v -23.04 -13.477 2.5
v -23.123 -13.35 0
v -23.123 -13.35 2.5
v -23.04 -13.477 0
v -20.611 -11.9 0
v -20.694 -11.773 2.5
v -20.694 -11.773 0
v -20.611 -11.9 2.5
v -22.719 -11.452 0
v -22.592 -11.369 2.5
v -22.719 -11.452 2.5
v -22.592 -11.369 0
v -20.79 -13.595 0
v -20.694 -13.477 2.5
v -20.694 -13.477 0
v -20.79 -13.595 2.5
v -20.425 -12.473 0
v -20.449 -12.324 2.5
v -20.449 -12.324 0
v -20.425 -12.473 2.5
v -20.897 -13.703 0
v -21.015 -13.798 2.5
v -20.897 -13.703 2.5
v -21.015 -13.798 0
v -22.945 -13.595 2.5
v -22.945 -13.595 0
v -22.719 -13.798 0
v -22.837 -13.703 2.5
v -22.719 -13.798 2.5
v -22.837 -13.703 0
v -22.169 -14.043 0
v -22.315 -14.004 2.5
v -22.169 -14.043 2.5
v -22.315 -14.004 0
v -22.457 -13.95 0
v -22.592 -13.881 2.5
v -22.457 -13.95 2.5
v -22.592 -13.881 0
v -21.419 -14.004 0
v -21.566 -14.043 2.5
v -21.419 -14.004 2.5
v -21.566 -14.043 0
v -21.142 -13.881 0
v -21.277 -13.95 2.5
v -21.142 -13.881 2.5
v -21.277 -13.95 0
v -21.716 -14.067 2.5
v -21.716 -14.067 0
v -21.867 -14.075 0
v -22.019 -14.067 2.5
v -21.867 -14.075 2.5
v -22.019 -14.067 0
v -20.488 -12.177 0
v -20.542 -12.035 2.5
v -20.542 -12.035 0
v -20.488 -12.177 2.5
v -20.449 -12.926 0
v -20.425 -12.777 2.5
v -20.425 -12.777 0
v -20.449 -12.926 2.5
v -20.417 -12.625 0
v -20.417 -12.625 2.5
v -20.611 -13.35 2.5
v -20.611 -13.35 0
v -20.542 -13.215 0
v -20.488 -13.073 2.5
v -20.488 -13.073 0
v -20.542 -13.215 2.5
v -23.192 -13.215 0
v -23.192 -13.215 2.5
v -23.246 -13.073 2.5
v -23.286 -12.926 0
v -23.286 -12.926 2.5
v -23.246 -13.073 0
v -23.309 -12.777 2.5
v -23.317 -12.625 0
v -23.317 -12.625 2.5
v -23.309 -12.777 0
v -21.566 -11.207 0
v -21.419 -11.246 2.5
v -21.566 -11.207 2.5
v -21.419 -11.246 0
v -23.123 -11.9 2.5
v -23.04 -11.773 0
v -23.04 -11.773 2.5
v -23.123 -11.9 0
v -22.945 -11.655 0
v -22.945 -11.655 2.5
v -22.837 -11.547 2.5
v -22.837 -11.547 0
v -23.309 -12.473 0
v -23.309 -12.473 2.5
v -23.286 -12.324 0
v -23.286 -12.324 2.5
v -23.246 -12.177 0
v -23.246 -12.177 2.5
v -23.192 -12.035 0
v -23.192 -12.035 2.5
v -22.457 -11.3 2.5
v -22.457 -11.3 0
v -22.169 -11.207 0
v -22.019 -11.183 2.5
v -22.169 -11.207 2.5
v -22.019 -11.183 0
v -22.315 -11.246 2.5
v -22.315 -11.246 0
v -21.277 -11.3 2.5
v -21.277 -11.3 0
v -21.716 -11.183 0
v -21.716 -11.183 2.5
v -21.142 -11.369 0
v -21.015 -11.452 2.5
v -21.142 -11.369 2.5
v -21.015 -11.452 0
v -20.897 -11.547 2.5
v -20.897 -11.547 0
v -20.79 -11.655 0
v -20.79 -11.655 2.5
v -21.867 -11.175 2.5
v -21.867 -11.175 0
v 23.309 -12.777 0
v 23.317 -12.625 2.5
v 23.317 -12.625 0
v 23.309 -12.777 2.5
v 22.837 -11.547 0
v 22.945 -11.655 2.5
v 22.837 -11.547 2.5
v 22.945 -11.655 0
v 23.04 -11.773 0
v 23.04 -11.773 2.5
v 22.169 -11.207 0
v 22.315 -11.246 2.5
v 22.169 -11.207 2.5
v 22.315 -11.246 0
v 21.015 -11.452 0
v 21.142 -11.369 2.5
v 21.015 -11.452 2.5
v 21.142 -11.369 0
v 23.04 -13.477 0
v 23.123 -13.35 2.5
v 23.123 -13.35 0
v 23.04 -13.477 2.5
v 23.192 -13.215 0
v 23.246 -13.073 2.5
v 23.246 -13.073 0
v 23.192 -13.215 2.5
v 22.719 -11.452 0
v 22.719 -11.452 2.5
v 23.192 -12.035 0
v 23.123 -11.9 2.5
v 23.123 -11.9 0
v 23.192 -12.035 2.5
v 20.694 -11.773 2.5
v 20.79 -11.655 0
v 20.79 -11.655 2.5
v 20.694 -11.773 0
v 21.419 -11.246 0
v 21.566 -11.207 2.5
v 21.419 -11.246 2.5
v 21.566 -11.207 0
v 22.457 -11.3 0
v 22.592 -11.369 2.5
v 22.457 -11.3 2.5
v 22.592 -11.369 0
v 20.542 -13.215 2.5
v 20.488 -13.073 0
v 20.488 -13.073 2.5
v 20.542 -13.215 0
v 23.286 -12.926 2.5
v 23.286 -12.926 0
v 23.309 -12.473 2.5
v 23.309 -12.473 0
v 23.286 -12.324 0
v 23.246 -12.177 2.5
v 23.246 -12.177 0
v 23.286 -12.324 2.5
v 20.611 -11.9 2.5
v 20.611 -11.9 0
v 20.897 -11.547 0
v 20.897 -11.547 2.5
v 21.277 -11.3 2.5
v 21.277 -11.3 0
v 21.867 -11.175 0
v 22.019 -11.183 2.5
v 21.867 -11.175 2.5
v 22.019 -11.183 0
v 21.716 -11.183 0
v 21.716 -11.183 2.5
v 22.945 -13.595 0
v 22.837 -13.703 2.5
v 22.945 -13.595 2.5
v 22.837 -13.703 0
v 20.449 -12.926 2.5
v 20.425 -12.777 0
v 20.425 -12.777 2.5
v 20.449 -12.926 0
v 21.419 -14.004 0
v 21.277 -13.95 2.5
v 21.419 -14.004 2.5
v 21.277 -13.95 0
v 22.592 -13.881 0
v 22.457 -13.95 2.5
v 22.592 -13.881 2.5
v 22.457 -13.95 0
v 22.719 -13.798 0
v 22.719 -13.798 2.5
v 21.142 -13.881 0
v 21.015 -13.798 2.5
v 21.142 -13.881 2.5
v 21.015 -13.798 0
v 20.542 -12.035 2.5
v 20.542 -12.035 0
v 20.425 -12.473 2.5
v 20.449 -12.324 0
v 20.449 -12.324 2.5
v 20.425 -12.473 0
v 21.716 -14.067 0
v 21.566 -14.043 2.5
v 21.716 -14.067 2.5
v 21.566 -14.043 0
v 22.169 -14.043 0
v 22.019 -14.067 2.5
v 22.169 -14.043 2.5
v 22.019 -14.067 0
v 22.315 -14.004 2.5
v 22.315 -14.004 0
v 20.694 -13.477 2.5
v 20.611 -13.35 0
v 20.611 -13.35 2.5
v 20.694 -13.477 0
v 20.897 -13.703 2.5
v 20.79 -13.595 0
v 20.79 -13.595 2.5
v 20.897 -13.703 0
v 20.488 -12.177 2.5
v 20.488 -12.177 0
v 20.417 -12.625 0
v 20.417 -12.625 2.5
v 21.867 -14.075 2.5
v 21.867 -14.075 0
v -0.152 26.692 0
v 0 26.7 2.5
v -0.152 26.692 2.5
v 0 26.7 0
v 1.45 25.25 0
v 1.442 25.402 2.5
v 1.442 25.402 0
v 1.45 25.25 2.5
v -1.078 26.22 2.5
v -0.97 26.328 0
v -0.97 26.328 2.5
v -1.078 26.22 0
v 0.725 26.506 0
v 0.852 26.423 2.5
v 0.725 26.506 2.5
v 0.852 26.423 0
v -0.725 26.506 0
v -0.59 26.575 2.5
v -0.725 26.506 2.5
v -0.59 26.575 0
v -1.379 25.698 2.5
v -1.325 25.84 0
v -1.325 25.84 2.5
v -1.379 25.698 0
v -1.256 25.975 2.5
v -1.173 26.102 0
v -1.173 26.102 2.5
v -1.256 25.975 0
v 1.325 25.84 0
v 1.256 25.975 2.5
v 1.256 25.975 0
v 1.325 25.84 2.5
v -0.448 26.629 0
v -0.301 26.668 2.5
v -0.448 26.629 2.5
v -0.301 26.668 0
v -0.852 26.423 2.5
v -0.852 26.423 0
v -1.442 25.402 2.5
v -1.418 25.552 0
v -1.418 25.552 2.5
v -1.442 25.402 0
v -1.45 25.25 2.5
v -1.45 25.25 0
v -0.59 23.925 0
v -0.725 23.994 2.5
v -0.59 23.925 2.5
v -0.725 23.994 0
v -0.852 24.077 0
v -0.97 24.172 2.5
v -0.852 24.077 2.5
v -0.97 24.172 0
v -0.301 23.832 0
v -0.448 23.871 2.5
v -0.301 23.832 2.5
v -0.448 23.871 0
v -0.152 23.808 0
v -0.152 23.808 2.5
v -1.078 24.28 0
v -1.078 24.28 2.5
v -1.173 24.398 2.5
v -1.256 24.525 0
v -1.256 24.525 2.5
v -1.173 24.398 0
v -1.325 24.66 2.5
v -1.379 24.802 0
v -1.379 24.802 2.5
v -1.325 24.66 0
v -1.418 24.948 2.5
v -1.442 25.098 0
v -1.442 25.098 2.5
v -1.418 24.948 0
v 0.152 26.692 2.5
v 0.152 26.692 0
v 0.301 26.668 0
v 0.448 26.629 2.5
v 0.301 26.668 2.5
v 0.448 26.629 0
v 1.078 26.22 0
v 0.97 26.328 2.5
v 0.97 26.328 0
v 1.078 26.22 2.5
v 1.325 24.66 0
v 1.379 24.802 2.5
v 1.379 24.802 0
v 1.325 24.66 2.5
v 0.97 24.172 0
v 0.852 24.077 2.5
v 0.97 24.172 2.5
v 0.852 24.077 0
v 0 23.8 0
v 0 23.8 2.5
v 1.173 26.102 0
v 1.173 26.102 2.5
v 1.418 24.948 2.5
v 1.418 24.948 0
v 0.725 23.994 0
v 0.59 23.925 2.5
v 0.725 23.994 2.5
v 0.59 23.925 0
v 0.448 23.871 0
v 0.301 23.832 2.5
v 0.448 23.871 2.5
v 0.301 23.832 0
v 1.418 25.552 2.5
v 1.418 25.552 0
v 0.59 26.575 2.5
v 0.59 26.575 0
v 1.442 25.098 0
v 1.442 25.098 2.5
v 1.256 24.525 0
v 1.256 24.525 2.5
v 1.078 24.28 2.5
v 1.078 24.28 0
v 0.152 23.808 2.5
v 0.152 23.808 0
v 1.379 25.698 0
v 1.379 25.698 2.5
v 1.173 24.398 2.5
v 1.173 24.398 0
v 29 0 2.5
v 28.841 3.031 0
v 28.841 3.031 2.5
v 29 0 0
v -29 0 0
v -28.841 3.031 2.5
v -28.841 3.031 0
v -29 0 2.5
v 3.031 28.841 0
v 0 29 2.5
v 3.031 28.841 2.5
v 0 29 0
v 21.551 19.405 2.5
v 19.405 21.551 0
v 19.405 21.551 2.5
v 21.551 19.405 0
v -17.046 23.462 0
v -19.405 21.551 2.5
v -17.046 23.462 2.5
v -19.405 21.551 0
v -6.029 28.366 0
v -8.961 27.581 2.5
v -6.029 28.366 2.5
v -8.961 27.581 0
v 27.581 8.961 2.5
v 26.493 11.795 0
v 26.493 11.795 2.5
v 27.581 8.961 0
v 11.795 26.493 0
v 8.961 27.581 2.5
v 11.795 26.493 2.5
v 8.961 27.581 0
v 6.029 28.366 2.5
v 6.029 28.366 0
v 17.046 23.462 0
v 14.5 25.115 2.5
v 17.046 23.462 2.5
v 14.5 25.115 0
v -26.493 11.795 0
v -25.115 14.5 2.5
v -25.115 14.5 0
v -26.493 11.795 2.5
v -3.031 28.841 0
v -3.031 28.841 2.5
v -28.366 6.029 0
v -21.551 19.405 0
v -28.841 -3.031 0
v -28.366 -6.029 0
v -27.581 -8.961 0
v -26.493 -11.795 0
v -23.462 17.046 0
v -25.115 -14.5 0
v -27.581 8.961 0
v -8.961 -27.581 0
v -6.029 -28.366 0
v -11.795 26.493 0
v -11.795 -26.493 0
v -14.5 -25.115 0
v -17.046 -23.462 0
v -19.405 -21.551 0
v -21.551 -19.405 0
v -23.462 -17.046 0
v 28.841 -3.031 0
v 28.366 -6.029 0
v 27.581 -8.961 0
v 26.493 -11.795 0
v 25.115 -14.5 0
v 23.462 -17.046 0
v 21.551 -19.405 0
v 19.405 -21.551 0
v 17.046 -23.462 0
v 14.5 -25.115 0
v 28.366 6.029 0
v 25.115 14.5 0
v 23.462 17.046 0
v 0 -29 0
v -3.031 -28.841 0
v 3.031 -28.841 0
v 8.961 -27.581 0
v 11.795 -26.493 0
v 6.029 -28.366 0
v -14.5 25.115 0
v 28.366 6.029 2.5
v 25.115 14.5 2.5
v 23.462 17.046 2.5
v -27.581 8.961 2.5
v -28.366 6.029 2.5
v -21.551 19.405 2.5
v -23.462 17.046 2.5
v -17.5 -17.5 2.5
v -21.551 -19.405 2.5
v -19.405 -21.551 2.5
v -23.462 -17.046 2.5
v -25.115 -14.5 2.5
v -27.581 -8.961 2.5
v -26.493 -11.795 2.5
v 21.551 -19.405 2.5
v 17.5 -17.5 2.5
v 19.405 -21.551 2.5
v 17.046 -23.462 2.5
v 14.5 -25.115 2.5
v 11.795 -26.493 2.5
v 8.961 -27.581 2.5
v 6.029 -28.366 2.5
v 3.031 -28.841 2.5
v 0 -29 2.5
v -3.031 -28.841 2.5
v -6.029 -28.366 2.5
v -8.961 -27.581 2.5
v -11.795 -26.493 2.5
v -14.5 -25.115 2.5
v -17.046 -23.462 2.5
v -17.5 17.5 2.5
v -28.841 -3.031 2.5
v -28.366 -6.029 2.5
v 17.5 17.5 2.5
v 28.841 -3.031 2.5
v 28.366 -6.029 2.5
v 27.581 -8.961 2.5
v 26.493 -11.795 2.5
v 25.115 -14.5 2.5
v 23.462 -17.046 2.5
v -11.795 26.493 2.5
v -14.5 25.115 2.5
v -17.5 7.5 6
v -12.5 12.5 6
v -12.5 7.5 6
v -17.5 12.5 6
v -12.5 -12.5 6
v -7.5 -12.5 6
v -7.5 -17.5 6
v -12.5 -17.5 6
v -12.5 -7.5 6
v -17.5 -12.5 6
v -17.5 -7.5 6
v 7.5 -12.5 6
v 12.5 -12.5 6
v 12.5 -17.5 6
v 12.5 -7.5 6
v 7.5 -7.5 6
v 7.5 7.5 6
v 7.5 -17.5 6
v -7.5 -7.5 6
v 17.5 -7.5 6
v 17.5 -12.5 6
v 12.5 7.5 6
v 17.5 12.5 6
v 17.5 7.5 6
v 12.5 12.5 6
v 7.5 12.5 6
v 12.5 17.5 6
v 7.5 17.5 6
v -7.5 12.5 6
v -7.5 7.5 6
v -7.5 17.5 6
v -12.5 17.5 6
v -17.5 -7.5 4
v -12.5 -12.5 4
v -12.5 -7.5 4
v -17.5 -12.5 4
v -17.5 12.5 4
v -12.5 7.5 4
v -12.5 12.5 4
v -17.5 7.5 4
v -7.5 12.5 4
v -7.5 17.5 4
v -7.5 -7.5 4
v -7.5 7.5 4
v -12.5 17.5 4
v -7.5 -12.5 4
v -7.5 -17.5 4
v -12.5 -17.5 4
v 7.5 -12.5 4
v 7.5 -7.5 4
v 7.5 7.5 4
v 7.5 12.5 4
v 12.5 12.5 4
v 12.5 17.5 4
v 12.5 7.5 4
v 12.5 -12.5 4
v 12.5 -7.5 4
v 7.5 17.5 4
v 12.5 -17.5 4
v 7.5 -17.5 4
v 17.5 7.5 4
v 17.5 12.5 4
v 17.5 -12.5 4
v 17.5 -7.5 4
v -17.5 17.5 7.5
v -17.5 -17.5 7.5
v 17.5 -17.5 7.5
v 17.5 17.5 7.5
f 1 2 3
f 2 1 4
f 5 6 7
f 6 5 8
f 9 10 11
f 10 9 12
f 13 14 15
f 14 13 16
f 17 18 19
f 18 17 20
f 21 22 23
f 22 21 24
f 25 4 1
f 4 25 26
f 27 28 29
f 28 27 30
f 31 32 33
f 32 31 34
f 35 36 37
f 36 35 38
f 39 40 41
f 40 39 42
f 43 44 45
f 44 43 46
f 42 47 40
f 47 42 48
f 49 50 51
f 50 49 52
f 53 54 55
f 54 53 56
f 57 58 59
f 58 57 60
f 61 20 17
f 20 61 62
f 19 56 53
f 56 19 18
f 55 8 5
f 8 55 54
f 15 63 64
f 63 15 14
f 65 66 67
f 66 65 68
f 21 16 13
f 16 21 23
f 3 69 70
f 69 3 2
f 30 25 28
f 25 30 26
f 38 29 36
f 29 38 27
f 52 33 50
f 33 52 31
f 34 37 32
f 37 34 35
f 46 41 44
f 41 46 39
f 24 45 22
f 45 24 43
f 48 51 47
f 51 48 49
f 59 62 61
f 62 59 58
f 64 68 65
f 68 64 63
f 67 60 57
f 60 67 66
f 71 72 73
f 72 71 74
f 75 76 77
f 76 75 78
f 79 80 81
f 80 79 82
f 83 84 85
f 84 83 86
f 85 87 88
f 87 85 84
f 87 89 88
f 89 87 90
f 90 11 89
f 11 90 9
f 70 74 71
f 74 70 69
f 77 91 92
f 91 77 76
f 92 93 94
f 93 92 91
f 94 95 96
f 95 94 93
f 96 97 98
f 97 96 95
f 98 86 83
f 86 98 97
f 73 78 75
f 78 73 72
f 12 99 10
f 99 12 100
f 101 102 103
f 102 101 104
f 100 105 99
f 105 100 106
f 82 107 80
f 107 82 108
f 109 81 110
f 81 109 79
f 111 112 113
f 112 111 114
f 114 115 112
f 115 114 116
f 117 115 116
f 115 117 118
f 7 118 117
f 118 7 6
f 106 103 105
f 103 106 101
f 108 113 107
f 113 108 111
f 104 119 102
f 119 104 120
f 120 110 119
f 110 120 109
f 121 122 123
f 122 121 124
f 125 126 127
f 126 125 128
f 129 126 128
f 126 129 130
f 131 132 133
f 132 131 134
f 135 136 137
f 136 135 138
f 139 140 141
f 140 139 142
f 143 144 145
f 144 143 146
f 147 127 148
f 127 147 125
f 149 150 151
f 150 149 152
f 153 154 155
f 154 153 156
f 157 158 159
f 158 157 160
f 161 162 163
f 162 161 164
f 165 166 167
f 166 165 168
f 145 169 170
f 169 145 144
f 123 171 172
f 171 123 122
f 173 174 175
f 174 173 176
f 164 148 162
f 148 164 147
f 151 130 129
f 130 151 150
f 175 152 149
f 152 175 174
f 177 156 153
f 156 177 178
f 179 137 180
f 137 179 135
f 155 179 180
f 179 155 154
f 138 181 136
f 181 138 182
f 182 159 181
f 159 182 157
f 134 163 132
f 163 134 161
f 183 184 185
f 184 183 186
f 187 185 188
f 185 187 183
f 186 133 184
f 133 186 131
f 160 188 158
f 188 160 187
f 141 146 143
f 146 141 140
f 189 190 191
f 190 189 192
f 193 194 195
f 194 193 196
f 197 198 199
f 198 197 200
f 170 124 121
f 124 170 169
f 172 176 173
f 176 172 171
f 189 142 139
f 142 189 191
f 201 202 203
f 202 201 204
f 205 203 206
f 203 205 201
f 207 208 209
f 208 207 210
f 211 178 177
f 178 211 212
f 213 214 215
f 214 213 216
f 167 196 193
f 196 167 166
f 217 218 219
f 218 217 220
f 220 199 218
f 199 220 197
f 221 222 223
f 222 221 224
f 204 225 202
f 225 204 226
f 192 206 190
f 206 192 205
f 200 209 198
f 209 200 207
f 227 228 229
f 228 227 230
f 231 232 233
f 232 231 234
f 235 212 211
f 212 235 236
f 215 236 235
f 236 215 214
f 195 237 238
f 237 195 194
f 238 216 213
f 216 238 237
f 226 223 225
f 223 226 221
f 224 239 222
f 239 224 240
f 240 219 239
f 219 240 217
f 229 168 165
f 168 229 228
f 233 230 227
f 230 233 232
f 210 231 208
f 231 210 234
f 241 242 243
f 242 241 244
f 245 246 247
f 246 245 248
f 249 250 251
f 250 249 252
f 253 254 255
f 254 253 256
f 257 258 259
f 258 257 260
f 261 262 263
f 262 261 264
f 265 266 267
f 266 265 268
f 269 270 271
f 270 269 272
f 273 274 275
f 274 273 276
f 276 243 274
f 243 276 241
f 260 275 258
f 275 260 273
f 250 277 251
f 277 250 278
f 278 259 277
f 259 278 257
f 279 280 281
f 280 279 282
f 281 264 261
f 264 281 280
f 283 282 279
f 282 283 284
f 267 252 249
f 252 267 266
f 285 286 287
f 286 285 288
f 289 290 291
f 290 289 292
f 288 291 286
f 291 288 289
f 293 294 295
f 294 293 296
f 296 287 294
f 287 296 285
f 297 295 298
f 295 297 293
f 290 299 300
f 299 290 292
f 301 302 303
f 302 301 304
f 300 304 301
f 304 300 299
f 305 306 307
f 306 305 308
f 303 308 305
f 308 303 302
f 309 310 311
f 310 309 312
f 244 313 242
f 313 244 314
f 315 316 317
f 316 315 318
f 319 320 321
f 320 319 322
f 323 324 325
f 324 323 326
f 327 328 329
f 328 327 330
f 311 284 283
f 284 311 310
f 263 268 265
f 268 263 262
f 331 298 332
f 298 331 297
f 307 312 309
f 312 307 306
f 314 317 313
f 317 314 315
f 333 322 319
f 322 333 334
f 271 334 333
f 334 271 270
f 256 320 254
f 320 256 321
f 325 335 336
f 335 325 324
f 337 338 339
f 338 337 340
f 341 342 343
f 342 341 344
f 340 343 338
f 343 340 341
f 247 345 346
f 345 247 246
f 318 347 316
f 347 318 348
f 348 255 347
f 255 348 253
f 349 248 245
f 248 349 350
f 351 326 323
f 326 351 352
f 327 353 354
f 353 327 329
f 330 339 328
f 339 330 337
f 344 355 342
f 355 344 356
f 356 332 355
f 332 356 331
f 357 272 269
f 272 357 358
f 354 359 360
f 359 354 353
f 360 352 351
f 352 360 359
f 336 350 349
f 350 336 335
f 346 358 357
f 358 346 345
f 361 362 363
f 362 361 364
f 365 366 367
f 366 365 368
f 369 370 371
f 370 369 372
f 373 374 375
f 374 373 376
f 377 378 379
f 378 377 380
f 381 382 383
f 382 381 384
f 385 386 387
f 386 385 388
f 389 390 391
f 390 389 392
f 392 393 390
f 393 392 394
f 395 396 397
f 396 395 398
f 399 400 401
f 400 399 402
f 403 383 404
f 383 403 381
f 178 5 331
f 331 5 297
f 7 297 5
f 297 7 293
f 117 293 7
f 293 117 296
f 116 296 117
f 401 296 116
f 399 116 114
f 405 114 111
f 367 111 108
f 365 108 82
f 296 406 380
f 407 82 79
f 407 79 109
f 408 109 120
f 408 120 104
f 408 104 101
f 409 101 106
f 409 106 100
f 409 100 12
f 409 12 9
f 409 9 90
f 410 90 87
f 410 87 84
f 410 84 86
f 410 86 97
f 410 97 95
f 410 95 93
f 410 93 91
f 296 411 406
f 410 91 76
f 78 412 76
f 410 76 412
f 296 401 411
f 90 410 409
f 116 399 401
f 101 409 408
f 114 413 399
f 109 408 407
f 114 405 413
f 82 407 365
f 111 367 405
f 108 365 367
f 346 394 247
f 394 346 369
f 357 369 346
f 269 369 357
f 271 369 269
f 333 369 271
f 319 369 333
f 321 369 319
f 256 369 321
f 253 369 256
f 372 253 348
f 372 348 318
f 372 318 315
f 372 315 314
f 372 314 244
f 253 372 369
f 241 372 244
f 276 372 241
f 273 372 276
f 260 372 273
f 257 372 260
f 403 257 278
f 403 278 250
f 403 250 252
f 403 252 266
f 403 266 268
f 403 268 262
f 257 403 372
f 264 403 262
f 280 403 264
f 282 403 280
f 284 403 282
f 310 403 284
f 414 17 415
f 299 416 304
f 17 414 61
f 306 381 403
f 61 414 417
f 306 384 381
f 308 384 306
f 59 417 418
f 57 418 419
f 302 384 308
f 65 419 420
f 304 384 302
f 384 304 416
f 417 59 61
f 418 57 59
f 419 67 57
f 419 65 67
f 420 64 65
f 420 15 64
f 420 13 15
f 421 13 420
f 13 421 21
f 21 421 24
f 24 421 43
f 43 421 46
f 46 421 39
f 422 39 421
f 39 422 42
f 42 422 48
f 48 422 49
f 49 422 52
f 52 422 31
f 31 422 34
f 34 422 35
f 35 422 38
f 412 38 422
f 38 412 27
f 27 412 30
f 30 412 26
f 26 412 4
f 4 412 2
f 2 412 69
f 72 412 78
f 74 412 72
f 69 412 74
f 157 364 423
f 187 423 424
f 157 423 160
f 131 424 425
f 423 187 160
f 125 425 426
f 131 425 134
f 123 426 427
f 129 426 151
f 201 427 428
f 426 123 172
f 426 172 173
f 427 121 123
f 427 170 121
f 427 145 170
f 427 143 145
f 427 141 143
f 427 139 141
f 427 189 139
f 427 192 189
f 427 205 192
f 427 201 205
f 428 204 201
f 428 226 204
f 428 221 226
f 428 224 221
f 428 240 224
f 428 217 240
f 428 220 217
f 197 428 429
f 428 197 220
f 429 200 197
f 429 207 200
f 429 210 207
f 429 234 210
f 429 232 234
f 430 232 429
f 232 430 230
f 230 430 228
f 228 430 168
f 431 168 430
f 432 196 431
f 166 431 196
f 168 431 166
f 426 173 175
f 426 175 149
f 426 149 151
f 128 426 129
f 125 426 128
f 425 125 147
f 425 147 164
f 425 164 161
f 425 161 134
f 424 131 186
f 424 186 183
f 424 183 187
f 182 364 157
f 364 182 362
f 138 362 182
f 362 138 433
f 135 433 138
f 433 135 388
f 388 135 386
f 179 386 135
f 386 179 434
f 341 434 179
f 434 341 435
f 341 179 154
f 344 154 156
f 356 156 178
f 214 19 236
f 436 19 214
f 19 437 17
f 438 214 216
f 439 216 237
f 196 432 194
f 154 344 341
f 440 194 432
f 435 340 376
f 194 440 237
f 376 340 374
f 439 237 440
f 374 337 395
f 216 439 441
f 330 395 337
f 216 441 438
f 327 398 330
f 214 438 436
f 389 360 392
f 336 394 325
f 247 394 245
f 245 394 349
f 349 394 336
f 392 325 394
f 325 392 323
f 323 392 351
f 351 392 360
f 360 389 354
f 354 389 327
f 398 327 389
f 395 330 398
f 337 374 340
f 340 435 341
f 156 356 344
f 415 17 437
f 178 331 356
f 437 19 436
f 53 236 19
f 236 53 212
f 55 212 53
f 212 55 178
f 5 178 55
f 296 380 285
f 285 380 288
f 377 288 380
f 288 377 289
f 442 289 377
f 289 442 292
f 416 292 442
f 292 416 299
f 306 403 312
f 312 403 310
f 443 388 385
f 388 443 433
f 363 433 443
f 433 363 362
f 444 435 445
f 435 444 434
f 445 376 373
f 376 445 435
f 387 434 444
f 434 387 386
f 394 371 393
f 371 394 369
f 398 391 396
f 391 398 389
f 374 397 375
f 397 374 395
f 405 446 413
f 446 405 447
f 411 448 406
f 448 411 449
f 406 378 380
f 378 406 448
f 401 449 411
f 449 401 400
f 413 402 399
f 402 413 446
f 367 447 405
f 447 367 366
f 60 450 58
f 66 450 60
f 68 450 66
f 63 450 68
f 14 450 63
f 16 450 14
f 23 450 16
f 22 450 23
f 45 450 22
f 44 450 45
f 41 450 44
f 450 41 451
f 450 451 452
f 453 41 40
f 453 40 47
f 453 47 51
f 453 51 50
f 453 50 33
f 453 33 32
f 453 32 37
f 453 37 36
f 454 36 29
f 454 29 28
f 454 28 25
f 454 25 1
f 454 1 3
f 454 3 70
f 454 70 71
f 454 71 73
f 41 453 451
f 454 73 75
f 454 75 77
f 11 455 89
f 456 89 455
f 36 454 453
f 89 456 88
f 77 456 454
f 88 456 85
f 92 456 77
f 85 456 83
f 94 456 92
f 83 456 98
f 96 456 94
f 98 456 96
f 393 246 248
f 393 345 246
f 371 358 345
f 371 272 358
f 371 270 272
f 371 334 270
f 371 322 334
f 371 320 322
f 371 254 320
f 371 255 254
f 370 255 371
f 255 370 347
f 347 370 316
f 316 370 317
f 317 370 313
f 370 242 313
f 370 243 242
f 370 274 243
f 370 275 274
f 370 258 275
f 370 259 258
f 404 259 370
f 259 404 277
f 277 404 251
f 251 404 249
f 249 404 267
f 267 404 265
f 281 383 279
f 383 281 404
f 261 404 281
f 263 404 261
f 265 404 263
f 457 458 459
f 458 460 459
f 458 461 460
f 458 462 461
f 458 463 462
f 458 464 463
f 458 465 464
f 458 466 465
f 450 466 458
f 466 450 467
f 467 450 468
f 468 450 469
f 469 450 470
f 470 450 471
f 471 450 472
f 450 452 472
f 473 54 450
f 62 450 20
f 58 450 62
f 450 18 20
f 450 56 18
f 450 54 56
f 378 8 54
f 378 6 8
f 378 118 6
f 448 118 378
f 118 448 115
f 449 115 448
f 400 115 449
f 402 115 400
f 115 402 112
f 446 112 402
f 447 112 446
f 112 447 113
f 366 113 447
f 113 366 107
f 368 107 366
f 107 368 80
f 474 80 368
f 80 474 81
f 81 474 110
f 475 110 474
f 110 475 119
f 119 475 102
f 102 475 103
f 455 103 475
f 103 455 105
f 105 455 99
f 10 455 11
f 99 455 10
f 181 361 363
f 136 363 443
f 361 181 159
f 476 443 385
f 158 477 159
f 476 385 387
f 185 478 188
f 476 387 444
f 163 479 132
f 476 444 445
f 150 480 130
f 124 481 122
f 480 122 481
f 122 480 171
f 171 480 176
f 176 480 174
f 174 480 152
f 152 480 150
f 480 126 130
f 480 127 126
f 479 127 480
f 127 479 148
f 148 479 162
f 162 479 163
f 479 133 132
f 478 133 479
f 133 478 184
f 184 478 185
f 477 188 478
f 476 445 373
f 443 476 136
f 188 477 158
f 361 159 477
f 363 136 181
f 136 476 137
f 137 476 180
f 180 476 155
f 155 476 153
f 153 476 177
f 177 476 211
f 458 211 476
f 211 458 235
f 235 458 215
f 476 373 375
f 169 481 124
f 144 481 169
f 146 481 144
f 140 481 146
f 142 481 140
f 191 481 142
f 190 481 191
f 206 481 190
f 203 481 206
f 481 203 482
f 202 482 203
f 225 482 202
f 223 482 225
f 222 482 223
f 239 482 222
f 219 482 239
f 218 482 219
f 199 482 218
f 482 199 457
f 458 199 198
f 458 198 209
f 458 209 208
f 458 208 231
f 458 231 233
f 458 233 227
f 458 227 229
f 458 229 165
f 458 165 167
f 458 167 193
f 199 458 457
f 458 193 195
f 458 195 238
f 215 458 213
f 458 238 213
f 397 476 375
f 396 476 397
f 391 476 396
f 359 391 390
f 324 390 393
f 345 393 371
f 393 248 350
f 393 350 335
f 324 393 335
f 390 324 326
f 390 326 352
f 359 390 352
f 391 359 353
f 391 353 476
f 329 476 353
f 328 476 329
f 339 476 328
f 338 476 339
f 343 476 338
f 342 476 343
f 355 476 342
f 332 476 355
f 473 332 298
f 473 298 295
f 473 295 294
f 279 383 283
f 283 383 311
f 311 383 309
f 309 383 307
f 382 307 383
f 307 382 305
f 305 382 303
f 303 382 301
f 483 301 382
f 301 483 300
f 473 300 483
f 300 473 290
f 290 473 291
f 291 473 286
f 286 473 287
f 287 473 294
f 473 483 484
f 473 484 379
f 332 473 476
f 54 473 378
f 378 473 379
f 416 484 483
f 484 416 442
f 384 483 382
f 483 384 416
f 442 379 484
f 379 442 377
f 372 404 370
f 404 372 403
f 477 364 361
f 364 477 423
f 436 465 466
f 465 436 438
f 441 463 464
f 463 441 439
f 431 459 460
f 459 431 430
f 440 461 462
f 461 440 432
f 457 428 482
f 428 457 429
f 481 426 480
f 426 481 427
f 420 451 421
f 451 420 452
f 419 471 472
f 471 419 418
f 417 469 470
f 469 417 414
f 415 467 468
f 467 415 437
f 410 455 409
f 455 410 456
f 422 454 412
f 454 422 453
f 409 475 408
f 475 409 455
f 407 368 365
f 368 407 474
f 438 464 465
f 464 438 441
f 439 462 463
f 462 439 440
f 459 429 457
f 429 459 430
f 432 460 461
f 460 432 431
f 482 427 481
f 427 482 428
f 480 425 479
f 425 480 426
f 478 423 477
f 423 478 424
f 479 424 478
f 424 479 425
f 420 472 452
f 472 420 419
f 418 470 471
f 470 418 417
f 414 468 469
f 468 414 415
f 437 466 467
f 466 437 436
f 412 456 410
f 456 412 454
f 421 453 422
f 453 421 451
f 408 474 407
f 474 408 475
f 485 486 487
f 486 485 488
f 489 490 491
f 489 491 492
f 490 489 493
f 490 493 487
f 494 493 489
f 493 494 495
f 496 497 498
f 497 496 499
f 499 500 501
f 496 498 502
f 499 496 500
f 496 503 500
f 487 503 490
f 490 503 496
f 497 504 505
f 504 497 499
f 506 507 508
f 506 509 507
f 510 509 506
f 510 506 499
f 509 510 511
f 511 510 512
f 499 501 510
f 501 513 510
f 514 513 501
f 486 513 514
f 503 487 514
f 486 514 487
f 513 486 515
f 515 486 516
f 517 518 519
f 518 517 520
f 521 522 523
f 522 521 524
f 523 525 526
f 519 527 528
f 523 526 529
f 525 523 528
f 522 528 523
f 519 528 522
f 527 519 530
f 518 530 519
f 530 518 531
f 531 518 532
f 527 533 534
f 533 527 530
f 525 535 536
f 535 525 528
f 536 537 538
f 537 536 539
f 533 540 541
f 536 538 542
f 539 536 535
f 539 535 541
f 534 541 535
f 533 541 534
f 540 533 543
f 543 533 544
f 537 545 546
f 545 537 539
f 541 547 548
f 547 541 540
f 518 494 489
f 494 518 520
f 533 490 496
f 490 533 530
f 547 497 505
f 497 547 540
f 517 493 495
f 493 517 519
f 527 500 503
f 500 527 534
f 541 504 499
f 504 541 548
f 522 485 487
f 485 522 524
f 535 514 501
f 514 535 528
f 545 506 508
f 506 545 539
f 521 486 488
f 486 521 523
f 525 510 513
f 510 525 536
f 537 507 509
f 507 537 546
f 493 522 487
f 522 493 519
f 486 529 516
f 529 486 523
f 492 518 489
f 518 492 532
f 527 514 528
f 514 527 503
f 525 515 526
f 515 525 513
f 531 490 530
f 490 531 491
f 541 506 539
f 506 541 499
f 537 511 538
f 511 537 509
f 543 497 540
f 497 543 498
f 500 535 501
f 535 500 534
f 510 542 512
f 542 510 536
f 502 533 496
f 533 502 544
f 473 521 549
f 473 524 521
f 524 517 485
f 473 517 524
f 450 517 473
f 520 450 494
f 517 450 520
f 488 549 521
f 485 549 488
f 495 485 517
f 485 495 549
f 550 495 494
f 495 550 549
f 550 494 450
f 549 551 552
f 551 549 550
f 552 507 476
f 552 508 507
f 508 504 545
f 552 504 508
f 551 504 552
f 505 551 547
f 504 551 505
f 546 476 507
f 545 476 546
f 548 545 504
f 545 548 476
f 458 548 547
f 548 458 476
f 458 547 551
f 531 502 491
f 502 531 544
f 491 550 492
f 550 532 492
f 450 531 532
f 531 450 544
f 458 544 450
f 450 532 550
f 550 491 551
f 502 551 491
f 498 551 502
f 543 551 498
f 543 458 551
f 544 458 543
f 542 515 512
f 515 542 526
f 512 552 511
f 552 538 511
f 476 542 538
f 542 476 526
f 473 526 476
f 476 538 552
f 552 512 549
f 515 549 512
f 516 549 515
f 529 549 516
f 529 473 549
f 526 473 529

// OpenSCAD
 union() { 
  
    difference() {
translate([0,0,5]) 
cube([35,35,5],true);

union() {
translate([0,-10,5]) 
  cube([36,5,2],true);
translate([0,10,5]) 
  cube([36,5,2],true);
rotate([0,0,90])
  translate([0,10,5]) 
    cube([36,5,2],true);
rotate([0,0,90])
  translate([0,-10,5]) 
    cube([36,5,2],true);
}
}

    
difference() {
    

cylinder(h=2.5,d=58,$fn=60);


    
    for (i=[1:3]) {
    rotate([0,0,i*120+90])
      translate([(46.5/2)+2,0,-2.5]) 
        cylinder(h=10, d=2.9, $fn=60);
    }
}
}   
